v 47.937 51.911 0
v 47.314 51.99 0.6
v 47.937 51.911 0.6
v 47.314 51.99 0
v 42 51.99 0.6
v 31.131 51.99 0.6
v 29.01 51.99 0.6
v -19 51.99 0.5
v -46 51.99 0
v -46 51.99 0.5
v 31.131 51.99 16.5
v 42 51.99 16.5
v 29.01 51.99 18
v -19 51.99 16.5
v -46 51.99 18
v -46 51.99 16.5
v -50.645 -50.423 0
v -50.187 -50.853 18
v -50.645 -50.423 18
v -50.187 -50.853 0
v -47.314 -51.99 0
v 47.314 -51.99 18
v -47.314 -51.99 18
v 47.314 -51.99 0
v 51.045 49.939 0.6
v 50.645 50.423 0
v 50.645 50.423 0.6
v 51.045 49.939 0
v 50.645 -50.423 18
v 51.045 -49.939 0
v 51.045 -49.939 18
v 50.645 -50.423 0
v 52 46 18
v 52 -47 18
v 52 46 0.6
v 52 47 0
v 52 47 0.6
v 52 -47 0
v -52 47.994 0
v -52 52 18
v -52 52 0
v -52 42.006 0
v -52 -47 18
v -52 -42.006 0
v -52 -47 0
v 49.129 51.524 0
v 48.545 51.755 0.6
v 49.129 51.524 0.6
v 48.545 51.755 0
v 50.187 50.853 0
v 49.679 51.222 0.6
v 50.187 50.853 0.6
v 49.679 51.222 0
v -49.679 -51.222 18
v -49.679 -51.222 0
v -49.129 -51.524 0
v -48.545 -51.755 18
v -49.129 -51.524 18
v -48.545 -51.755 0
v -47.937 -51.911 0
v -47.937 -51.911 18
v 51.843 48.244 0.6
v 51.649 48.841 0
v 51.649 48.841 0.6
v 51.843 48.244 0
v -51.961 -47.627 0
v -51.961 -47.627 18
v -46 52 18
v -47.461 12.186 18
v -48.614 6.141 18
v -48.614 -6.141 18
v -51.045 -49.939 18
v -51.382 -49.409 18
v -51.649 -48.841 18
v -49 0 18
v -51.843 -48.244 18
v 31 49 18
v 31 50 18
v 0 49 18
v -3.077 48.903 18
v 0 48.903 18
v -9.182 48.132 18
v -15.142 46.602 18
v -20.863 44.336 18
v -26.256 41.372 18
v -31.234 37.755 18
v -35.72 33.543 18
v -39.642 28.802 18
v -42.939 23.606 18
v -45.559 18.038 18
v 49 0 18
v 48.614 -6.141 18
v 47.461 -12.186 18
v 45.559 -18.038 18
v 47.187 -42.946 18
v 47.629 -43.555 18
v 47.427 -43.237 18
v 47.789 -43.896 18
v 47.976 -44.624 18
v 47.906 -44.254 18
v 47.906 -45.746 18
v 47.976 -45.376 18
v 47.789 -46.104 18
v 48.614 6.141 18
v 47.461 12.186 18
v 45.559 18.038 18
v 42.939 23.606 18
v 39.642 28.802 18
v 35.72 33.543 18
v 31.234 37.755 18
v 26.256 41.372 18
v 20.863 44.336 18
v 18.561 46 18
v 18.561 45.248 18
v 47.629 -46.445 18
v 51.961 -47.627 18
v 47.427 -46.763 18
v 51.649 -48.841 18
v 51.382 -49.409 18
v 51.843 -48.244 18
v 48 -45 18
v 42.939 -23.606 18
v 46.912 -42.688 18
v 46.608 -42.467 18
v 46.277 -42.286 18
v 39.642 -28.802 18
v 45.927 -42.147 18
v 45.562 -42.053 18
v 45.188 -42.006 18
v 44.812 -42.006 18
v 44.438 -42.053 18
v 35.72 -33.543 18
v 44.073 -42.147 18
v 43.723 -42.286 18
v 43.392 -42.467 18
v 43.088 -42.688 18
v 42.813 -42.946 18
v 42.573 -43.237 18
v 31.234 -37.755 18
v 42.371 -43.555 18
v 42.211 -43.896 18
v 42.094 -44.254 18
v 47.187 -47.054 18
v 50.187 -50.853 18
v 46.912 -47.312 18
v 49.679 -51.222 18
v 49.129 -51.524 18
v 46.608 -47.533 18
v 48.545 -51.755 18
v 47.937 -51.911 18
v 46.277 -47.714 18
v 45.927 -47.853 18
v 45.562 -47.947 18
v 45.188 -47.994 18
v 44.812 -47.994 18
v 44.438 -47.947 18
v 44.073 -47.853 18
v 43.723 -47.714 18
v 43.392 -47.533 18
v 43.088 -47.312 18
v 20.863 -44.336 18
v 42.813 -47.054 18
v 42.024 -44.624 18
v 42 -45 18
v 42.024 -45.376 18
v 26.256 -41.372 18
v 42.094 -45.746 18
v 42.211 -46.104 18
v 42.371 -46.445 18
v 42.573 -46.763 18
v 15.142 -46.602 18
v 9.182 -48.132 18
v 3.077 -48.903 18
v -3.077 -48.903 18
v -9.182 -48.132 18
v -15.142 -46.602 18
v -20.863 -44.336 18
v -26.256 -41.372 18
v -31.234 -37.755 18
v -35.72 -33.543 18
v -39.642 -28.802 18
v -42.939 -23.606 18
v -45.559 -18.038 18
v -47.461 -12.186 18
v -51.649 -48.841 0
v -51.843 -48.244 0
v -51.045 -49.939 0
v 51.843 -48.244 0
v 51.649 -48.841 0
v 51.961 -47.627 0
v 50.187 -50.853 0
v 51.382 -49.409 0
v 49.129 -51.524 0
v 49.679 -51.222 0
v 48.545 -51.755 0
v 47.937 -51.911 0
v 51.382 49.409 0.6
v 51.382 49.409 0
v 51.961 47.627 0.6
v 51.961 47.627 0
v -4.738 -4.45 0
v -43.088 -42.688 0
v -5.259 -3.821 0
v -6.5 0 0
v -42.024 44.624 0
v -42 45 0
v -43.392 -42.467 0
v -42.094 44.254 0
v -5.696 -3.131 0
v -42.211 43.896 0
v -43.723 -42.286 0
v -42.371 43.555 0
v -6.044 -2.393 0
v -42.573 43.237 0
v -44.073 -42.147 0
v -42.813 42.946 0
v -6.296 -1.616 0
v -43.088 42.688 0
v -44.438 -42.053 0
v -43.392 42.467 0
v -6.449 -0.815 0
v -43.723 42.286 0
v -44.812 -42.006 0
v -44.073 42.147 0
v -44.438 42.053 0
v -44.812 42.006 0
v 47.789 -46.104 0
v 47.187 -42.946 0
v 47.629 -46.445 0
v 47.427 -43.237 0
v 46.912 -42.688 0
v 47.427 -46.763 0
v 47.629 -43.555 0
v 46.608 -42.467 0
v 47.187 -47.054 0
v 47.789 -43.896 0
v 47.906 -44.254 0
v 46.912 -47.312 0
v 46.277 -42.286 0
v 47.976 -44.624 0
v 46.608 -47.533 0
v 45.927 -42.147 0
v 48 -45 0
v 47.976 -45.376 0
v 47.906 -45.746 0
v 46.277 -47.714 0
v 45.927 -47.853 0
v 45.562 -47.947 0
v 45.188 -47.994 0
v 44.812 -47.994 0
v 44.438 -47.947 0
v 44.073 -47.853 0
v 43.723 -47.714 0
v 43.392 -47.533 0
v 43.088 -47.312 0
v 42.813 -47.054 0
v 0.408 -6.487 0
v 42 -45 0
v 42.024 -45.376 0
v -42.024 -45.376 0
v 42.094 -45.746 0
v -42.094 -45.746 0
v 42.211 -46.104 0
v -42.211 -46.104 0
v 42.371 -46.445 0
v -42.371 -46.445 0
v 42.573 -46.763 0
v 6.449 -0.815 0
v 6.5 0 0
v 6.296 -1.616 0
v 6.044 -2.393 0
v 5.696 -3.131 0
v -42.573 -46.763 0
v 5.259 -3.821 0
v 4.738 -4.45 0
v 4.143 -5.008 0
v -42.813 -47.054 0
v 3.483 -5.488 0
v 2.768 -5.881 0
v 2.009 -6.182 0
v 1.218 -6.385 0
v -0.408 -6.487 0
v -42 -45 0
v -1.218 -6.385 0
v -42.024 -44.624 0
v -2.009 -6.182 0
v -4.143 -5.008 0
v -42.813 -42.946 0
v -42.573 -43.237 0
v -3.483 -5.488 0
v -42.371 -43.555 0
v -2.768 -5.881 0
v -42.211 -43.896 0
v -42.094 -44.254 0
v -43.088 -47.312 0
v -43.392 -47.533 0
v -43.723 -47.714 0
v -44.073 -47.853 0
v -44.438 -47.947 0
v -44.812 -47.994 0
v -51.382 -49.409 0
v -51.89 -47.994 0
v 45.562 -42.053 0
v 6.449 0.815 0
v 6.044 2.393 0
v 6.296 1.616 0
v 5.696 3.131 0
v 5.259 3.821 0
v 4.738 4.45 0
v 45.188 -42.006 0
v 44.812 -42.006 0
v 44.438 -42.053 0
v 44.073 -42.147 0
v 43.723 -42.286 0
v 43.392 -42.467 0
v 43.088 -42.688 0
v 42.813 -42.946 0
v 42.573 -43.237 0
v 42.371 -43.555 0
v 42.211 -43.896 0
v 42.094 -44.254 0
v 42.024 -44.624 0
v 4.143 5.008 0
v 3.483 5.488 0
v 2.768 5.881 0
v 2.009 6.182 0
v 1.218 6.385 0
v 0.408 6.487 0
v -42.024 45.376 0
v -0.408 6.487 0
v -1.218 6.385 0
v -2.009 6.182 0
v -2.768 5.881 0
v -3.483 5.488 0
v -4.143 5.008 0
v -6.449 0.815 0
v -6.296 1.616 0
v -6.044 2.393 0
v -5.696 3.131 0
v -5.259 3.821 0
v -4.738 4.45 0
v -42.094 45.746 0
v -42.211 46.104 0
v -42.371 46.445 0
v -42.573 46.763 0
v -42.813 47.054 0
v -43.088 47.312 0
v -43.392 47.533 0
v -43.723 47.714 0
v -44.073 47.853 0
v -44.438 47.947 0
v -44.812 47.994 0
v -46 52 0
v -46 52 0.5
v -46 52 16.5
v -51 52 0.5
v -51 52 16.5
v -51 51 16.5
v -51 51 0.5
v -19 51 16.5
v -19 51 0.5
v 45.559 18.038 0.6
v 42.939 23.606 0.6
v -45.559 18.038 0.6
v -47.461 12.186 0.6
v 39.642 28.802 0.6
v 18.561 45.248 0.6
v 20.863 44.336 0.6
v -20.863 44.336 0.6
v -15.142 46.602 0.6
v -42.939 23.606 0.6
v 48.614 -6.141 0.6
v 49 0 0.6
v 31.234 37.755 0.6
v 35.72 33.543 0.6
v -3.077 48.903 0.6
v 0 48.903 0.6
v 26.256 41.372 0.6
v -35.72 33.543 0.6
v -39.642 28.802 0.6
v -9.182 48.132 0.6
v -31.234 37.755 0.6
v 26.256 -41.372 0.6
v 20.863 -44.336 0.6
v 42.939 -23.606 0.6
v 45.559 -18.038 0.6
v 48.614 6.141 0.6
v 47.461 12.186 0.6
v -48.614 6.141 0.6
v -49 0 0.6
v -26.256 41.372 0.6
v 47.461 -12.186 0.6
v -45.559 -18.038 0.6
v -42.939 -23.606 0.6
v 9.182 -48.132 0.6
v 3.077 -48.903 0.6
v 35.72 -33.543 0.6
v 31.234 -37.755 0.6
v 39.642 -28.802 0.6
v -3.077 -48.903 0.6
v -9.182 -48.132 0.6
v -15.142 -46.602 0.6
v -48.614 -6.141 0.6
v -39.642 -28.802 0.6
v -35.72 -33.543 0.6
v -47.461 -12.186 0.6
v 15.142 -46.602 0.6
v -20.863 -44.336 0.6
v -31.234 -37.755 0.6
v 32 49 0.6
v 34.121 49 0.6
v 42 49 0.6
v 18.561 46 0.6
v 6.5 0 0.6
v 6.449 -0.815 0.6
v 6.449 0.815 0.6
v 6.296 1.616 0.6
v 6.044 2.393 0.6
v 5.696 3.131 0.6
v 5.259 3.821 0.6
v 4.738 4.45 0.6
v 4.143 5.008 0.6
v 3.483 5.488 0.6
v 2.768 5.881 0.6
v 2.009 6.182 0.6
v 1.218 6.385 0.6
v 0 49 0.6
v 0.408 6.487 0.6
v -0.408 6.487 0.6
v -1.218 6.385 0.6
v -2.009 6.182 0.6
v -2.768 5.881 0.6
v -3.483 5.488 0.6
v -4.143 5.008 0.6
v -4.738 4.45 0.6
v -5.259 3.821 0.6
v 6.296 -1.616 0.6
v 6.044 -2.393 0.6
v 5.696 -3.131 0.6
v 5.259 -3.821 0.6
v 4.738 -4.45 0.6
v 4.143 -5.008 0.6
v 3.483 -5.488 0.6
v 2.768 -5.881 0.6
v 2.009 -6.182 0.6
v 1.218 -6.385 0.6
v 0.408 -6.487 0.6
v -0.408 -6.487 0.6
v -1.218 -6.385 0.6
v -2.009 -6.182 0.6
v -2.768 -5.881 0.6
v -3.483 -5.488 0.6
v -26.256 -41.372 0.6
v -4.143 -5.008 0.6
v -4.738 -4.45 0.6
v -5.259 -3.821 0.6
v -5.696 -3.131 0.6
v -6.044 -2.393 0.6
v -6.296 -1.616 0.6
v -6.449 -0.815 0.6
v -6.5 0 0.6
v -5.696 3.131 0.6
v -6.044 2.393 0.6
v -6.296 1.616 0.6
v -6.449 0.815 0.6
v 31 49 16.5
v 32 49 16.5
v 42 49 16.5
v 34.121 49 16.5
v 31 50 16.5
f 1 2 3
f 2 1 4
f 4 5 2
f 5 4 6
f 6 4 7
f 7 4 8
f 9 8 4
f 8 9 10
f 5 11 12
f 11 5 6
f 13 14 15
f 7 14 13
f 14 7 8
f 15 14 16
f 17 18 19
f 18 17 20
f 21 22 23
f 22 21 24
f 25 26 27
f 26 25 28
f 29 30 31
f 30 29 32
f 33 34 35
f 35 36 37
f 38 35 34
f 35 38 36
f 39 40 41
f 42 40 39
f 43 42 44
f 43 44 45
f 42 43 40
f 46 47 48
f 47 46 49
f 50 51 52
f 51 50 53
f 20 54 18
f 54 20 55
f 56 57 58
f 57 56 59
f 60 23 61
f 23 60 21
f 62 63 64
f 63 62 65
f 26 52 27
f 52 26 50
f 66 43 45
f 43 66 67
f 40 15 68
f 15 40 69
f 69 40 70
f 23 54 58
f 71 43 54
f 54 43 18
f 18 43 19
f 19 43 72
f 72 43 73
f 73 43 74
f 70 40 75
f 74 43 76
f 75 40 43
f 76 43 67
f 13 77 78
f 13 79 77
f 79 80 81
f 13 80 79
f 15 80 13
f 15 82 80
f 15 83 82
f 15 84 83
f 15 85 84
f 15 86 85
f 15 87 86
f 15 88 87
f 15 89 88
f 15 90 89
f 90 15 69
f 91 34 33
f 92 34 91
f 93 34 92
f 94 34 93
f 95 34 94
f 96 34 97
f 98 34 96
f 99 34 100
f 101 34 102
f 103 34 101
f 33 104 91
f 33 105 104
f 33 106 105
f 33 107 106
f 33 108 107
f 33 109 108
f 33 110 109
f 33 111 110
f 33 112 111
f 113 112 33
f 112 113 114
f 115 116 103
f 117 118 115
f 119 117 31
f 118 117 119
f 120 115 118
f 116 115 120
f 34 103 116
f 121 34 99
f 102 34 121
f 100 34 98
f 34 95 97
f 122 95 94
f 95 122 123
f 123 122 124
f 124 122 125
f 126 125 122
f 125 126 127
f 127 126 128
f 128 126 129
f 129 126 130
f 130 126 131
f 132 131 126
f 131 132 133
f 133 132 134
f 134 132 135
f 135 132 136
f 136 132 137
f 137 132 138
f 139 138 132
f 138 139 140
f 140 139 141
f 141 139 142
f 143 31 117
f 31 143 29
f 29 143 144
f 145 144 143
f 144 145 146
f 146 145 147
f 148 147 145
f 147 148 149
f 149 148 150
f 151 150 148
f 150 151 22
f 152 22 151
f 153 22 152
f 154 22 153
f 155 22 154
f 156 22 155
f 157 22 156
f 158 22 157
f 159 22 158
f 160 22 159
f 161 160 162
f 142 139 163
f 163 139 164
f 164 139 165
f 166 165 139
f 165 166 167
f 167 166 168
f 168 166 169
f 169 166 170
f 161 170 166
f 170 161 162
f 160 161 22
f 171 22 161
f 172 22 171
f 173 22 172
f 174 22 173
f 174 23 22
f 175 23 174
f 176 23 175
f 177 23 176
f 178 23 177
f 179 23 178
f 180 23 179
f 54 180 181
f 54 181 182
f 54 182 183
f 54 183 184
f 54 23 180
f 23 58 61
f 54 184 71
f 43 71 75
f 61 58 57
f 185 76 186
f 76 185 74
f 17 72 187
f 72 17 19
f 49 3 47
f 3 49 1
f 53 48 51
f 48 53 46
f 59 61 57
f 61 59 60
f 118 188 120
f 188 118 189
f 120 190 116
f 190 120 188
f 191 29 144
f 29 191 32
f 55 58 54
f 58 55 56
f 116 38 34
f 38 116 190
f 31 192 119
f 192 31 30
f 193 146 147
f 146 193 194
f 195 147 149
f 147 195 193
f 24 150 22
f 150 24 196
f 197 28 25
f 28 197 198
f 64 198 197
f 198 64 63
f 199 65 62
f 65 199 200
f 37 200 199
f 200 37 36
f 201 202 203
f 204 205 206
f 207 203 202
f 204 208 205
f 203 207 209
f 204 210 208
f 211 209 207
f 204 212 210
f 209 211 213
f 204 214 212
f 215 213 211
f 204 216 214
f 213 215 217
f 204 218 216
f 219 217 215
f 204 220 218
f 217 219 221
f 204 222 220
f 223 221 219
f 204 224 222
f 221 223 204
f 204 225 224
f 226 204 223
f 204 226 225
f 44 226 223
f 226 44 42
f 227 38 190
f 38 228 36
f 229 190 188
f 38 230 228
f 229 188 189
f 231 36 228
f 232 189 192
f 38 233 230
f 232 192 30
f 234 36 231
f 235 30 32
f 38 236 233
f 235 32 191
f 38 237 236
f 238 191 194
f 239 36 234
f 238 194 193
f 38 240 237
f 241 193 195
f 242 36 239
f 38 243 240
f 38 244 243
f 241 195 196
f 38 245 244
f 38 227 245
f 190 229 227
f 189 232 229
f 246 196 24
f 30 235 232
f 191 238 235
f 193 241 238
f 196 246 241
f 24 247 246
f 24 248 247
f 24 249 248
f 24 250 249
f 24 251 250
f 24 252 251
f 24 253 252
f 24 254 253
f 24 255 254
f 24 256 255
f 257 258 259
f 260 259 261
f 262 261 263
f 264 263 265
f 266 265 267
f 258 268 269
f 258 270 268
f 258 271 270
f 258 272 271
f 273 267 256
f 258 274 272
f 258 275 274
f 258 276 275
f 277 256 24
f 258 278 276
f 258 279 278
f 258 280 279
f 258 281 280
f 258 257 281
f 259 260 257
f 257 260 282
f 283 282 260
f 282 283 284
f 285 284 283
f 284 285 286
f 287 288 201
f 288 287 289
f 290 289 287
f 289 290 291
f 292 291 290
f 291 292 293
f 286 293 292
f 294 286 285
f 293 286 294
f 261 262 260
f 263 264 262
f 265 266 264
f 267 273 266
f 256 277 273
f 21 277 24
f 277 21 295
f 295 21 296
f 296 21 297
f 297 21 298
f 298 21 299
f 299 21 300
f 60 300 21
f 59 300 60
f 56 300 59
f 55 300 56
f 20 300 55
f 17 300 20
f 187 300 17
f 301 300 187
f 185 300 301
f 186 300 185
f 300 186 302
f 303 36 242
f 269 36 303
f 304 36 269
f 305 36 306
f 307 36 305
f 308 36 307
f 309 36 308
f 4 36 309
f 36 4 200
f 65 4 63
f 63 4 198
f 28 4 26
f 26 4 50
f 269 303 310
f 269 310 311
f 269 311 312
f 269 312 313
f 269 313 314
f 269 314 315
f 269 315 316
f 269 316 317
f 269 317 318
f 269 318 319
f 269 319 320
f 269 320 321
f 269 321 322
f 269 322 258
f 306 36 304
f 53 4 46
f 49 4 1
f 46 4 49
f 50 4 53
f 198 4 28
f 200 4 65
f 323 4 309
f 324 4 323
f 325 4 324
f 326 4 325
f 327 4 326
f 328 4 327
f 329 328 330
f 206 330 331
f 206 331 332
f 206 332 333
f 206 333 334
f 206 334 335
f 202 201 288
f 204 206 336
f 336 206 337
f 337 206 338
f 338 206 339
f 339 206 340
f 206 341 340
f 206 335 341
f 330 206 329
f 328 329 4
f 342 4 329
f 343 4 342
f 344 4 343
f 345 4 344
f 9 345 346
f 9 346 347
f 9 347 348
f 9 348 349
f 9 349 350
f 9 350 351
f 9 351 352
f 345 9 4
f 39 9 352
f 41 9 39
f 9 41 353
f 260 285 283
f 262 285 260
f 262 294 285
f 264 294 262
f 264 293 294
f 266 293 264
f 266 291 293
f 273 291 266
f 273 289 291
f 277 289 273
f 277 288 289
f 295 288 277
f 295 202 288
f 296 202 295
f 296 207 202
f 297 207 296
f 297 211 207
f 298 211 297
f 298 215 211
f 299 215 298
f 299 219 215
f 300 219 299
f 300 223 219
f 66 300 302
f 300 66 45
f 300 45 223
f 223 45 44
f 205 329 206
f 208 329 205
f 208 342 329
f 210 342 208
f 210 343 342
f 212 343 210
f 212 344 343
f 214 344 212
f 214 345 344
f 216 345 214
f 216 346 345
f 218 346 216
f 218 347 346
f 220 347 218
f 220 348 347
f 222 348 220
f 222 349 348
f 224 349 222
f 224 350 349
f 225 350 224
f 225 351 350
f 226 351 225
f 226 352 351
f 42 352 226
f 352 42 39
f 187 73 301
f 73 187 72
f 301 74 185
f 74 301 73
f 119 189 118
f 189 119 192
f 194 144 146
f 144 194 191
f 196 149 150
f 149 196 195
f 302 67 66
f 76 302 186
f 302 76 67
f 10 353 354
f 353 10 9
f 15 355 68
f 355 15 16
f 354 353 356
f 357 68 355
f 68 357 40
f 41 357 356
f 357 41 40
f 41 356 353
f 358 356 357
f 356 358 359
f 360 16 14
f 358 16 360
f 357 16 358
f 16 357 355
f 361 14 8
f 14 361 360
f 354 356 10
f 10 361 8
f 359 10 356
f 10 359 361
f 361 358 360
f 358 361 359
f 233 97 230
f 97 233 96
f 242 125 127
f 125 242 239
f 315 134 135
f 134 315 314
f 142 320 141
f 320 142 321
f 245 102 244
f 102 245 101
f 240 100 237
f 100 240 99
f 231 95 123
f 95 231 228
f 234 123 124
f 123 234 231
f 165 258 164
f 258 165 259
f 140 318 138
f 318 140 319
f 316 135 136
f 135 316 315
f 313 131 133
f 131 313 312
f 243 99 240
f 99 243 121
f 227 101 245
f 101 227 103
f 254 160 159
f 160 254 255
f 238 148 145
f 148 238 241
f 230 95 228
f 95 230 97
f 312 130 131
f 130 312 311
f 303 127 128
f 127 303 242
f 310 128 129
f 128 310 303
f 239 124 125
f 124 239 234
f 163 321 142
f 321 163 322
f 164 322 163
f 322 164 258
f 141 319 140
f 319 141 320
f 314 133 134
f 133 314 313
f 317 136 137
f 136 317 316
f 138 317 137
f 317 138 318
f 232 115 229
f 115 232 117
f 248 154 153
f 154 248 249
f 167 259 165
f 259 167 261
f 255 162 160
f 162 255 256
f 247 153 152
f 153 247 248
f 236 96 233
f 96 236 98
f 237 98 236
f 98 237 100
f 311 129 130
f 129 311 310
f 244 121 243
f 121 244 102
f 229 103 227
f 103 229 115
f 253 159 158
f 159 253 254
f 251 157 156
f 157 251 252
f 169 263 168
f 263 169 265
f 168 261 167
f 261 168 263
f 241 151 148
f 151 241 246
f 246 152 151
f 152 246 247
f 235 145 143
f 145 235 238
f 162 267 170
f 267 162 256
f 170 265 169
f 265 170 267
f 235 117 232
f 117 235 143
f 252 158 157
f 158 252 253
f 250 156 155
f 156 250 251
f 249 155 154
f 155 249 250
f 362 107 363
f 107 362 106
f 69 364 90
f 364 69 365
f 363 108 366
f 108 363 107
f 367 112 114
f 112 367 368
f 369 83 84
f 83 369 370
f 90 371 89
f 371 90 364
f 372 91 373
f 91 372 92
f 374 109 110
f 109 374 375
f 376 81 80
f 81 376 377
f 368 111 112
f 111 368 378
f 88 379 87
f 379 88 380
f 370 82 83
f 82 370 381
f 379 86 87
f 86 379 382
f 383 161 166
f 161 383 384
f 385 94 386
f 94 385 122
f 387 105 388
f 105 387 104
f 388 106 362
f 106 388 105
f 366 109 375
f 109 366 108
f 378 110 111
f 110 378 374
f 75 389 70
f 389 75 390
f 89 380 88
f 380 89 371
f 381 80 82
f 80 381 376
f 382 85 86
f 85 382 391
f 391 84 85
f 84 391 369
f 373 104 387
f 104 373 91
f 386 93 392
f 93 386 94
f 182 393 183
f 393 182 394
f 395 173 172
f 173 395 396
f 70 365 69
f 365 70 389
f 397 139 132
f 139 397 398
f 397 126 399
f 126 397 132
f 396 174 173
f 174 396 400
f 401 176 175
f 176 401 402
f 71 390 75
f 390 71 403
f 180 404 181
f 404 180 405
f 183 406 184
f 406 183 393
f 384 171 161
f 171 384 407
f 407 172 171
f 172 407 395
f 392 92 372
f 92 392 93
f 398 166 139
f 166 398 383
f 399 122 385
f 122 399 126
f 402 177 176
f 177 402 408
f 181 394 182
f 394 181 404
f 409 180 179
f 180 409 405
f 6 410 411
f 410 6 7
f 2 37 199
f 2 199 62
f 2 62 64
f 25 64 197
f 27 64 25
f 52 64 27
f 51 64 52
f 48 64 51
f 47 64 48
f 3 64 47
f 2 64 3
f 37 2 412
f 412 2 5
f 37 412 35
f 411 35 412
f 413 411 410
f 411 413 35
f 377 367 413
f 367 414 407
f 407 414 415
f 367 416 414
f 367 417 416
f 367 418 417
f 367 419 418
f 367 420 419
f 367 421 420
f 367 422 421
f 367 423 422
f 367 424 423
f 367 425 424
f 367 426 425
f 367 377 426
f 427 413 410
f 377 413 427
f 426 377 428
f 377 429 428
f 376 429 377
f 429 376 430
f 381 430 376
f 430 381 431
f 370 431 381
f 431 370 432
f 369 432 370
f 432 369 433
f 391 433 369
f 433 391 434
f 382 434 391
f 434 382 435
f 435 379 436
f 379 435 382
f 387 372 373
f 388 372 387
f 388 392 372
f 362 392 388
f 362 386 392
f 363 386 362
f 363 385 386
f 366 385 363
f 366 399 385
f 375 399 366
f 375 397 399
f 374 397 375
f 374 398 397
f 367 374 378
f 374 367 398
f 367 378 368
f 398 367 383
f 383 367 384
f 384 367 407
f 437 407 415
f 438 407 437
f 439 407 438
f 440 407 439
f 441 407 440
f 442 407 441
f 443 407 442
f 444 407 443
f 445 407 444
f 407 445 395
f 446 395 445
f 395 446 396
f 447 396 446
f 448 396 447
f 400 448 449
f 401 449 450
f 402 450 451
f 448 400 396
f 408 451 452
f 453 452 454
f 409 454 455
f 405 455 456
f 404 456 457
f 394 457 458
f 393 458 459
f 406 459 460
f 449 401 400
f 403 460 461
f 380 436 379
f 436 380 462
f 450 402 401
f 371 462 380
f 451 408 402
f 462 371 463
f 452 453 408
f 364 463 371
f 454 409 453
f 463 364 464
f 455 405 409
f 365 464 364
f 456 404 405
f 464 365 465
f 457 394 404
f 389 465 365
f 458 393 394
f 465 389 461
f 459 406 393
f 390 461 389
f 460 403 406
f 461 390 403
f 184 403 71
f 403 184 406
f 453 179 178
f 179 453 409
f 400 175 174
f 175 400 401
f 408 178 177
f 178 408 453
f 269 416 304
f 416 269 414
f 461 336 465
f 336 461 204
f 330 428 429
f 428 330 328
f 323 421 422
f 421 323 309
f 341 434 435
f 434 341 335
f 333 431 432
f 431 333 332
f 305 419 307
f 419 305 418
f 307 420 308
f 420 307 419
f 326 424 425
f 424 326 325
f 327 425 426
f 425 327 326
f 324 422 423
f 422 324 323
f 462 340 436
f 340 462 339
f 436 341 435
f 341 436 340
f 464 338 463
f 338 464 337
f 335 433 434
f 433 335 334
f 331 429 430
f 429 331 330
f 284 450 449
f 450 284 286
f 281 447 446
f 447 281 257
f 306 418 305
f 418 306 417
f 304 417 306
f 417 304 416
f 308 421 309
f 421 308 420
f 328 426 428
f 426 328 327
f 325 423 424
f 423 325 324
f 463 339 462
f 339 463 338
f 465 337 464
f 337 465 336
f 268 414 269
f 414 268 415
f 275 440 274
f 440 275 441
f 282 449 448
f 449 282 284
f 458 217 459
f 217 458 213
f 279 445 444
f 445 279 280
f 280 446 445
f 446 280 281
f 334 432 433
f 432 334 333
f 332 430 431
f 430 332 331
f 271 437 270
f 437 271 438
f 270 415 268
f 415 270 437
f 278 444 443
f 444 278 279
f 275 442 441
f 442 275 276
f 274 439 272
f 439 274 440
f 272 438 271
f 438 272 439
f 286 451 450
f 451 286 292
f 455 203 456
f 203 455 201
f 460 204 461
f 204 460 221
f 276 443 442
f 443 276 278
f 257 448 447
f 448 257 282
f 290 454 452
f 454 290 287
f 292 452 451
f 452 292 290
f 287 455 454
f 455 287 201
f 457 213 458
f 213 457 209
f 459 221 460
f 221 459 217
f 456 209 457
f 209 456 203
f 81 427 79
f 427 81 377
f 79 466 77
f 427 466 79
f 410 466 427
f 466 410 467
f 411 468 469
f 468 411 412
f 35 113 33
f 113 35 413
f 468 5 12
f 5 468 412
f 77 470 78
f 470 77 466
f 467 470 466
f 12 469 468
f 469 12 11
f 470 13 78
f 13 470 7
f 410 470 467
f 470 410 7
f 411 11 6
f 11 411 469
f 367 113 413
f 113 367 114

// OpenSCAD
$fn = 50;


difference() {
	union() {
		hull() {
			translate(v = [-47.0000000000, 47.0000000000, 0]) {
				cylinder(h = 18, r = 5);
			}
			translate(v = [47.0000000000, 47.0000000000, 0]) {
				cylinder(h = 18, r = 5);
			}
			translate(v = [-47.0000000000, -47.0000000000, 0]) {
				cylinder(h = 18, r = 5);
			}
			translate(v = [47.0000000000, -47.0000000000, 0]) {
				cylinder(h = 18, r = 5);
			}
		}
		translate(v = [-52.0000000000, 46.0000000000, 0]) {
			cube(size = [6, 6, 18]);
		}
	}
	union() {
		translate(v = [-52.5000000000, -45.0000000000, -250.0000000000]) {
			rotate(a = [0, 0, 0]) {
				difference() {
					union() {
						hull() {
							translate(v = [7.5000000000, 0, 0]) {
								cylinder(h = 250, r = 3.0000000000, r1 = 3.0000000000, r2 = 3.0000000000);
							}
							translate(v = [-7.5000000000, 0, 0]) {
								cylinder(h = 250, r = 3.0000000000, r1 = 3.0000000000, r2 = 3.0000000000);
							}
						}
					}
					union();
				}
			}
		}
		translate(v = [-52.5000000000, 45.0000000000, -250.0000000000]) {
			rotate(a = [0, 0, 0]) {
				difference() {
					union() {
						hull() {
							translate(v = [7.5000000000, 0, 0]) {
								cylinder(h = 250, r = 3.0000000000, r1 = 3.0000000000, r2 = 3.0000000000);
							}
							translate(v = [-7.5000000000, 0, 0]) {
								cylinder(h = 250, r = 3.0000000000, r1 = 3.0000000000, r2 = 3.0000000000);
							}
						}
					}
					union();
				}
			}
		}
		translate(v = [-51.0000000000, 51.0000000000, 0.5000000000]) {
			cube(size = [32, 1, 16]);
		}
		translate(v = [45.0000000000, -45.0000000000, -50.0000000000]) {
			cylinder(h = 100, r = 3.0000000000);
		}
		translate(v = [0, 0, 0.6000000000]) {
			cylinder(h = 20.4000000000, r = 49.0000000000);
		}
		translate(v = [0, 0, -9.0000000000]) {
			cylinder(h = 18, r = 6.5000000000);
		}
		translate(v = [0.0000000000, 46.0000000000, 0.6000000000]) {
			cube(size = [52.0000000000, 3, 20.4000000000]);
		}
		translate(v = [42.0000000000, 46.0000000000, 0.6000000000]) {
			cube(size = [10, 6, 20.4000000000]);
		}
		translate(v = [31.0000000000, 46.0000000000, 16.5000000000]) {
			cube(size = [21, 6, 1.5000000000]);
		}
		translate(v = [28.2500000000, 52.7500000000, 0.6000000000]) {
			rotate(a = [0, 0, -45]) {
				cube(size = [7.5000000000, 1.5000000000, 20.4000000000]);
			}
		}
		translate(v = [11.0610000000, 44.0000000000, 0.6000000000]) {
			cube(size = [7.5000000000, 2, 17.4000000000]);
		}
	}
}
